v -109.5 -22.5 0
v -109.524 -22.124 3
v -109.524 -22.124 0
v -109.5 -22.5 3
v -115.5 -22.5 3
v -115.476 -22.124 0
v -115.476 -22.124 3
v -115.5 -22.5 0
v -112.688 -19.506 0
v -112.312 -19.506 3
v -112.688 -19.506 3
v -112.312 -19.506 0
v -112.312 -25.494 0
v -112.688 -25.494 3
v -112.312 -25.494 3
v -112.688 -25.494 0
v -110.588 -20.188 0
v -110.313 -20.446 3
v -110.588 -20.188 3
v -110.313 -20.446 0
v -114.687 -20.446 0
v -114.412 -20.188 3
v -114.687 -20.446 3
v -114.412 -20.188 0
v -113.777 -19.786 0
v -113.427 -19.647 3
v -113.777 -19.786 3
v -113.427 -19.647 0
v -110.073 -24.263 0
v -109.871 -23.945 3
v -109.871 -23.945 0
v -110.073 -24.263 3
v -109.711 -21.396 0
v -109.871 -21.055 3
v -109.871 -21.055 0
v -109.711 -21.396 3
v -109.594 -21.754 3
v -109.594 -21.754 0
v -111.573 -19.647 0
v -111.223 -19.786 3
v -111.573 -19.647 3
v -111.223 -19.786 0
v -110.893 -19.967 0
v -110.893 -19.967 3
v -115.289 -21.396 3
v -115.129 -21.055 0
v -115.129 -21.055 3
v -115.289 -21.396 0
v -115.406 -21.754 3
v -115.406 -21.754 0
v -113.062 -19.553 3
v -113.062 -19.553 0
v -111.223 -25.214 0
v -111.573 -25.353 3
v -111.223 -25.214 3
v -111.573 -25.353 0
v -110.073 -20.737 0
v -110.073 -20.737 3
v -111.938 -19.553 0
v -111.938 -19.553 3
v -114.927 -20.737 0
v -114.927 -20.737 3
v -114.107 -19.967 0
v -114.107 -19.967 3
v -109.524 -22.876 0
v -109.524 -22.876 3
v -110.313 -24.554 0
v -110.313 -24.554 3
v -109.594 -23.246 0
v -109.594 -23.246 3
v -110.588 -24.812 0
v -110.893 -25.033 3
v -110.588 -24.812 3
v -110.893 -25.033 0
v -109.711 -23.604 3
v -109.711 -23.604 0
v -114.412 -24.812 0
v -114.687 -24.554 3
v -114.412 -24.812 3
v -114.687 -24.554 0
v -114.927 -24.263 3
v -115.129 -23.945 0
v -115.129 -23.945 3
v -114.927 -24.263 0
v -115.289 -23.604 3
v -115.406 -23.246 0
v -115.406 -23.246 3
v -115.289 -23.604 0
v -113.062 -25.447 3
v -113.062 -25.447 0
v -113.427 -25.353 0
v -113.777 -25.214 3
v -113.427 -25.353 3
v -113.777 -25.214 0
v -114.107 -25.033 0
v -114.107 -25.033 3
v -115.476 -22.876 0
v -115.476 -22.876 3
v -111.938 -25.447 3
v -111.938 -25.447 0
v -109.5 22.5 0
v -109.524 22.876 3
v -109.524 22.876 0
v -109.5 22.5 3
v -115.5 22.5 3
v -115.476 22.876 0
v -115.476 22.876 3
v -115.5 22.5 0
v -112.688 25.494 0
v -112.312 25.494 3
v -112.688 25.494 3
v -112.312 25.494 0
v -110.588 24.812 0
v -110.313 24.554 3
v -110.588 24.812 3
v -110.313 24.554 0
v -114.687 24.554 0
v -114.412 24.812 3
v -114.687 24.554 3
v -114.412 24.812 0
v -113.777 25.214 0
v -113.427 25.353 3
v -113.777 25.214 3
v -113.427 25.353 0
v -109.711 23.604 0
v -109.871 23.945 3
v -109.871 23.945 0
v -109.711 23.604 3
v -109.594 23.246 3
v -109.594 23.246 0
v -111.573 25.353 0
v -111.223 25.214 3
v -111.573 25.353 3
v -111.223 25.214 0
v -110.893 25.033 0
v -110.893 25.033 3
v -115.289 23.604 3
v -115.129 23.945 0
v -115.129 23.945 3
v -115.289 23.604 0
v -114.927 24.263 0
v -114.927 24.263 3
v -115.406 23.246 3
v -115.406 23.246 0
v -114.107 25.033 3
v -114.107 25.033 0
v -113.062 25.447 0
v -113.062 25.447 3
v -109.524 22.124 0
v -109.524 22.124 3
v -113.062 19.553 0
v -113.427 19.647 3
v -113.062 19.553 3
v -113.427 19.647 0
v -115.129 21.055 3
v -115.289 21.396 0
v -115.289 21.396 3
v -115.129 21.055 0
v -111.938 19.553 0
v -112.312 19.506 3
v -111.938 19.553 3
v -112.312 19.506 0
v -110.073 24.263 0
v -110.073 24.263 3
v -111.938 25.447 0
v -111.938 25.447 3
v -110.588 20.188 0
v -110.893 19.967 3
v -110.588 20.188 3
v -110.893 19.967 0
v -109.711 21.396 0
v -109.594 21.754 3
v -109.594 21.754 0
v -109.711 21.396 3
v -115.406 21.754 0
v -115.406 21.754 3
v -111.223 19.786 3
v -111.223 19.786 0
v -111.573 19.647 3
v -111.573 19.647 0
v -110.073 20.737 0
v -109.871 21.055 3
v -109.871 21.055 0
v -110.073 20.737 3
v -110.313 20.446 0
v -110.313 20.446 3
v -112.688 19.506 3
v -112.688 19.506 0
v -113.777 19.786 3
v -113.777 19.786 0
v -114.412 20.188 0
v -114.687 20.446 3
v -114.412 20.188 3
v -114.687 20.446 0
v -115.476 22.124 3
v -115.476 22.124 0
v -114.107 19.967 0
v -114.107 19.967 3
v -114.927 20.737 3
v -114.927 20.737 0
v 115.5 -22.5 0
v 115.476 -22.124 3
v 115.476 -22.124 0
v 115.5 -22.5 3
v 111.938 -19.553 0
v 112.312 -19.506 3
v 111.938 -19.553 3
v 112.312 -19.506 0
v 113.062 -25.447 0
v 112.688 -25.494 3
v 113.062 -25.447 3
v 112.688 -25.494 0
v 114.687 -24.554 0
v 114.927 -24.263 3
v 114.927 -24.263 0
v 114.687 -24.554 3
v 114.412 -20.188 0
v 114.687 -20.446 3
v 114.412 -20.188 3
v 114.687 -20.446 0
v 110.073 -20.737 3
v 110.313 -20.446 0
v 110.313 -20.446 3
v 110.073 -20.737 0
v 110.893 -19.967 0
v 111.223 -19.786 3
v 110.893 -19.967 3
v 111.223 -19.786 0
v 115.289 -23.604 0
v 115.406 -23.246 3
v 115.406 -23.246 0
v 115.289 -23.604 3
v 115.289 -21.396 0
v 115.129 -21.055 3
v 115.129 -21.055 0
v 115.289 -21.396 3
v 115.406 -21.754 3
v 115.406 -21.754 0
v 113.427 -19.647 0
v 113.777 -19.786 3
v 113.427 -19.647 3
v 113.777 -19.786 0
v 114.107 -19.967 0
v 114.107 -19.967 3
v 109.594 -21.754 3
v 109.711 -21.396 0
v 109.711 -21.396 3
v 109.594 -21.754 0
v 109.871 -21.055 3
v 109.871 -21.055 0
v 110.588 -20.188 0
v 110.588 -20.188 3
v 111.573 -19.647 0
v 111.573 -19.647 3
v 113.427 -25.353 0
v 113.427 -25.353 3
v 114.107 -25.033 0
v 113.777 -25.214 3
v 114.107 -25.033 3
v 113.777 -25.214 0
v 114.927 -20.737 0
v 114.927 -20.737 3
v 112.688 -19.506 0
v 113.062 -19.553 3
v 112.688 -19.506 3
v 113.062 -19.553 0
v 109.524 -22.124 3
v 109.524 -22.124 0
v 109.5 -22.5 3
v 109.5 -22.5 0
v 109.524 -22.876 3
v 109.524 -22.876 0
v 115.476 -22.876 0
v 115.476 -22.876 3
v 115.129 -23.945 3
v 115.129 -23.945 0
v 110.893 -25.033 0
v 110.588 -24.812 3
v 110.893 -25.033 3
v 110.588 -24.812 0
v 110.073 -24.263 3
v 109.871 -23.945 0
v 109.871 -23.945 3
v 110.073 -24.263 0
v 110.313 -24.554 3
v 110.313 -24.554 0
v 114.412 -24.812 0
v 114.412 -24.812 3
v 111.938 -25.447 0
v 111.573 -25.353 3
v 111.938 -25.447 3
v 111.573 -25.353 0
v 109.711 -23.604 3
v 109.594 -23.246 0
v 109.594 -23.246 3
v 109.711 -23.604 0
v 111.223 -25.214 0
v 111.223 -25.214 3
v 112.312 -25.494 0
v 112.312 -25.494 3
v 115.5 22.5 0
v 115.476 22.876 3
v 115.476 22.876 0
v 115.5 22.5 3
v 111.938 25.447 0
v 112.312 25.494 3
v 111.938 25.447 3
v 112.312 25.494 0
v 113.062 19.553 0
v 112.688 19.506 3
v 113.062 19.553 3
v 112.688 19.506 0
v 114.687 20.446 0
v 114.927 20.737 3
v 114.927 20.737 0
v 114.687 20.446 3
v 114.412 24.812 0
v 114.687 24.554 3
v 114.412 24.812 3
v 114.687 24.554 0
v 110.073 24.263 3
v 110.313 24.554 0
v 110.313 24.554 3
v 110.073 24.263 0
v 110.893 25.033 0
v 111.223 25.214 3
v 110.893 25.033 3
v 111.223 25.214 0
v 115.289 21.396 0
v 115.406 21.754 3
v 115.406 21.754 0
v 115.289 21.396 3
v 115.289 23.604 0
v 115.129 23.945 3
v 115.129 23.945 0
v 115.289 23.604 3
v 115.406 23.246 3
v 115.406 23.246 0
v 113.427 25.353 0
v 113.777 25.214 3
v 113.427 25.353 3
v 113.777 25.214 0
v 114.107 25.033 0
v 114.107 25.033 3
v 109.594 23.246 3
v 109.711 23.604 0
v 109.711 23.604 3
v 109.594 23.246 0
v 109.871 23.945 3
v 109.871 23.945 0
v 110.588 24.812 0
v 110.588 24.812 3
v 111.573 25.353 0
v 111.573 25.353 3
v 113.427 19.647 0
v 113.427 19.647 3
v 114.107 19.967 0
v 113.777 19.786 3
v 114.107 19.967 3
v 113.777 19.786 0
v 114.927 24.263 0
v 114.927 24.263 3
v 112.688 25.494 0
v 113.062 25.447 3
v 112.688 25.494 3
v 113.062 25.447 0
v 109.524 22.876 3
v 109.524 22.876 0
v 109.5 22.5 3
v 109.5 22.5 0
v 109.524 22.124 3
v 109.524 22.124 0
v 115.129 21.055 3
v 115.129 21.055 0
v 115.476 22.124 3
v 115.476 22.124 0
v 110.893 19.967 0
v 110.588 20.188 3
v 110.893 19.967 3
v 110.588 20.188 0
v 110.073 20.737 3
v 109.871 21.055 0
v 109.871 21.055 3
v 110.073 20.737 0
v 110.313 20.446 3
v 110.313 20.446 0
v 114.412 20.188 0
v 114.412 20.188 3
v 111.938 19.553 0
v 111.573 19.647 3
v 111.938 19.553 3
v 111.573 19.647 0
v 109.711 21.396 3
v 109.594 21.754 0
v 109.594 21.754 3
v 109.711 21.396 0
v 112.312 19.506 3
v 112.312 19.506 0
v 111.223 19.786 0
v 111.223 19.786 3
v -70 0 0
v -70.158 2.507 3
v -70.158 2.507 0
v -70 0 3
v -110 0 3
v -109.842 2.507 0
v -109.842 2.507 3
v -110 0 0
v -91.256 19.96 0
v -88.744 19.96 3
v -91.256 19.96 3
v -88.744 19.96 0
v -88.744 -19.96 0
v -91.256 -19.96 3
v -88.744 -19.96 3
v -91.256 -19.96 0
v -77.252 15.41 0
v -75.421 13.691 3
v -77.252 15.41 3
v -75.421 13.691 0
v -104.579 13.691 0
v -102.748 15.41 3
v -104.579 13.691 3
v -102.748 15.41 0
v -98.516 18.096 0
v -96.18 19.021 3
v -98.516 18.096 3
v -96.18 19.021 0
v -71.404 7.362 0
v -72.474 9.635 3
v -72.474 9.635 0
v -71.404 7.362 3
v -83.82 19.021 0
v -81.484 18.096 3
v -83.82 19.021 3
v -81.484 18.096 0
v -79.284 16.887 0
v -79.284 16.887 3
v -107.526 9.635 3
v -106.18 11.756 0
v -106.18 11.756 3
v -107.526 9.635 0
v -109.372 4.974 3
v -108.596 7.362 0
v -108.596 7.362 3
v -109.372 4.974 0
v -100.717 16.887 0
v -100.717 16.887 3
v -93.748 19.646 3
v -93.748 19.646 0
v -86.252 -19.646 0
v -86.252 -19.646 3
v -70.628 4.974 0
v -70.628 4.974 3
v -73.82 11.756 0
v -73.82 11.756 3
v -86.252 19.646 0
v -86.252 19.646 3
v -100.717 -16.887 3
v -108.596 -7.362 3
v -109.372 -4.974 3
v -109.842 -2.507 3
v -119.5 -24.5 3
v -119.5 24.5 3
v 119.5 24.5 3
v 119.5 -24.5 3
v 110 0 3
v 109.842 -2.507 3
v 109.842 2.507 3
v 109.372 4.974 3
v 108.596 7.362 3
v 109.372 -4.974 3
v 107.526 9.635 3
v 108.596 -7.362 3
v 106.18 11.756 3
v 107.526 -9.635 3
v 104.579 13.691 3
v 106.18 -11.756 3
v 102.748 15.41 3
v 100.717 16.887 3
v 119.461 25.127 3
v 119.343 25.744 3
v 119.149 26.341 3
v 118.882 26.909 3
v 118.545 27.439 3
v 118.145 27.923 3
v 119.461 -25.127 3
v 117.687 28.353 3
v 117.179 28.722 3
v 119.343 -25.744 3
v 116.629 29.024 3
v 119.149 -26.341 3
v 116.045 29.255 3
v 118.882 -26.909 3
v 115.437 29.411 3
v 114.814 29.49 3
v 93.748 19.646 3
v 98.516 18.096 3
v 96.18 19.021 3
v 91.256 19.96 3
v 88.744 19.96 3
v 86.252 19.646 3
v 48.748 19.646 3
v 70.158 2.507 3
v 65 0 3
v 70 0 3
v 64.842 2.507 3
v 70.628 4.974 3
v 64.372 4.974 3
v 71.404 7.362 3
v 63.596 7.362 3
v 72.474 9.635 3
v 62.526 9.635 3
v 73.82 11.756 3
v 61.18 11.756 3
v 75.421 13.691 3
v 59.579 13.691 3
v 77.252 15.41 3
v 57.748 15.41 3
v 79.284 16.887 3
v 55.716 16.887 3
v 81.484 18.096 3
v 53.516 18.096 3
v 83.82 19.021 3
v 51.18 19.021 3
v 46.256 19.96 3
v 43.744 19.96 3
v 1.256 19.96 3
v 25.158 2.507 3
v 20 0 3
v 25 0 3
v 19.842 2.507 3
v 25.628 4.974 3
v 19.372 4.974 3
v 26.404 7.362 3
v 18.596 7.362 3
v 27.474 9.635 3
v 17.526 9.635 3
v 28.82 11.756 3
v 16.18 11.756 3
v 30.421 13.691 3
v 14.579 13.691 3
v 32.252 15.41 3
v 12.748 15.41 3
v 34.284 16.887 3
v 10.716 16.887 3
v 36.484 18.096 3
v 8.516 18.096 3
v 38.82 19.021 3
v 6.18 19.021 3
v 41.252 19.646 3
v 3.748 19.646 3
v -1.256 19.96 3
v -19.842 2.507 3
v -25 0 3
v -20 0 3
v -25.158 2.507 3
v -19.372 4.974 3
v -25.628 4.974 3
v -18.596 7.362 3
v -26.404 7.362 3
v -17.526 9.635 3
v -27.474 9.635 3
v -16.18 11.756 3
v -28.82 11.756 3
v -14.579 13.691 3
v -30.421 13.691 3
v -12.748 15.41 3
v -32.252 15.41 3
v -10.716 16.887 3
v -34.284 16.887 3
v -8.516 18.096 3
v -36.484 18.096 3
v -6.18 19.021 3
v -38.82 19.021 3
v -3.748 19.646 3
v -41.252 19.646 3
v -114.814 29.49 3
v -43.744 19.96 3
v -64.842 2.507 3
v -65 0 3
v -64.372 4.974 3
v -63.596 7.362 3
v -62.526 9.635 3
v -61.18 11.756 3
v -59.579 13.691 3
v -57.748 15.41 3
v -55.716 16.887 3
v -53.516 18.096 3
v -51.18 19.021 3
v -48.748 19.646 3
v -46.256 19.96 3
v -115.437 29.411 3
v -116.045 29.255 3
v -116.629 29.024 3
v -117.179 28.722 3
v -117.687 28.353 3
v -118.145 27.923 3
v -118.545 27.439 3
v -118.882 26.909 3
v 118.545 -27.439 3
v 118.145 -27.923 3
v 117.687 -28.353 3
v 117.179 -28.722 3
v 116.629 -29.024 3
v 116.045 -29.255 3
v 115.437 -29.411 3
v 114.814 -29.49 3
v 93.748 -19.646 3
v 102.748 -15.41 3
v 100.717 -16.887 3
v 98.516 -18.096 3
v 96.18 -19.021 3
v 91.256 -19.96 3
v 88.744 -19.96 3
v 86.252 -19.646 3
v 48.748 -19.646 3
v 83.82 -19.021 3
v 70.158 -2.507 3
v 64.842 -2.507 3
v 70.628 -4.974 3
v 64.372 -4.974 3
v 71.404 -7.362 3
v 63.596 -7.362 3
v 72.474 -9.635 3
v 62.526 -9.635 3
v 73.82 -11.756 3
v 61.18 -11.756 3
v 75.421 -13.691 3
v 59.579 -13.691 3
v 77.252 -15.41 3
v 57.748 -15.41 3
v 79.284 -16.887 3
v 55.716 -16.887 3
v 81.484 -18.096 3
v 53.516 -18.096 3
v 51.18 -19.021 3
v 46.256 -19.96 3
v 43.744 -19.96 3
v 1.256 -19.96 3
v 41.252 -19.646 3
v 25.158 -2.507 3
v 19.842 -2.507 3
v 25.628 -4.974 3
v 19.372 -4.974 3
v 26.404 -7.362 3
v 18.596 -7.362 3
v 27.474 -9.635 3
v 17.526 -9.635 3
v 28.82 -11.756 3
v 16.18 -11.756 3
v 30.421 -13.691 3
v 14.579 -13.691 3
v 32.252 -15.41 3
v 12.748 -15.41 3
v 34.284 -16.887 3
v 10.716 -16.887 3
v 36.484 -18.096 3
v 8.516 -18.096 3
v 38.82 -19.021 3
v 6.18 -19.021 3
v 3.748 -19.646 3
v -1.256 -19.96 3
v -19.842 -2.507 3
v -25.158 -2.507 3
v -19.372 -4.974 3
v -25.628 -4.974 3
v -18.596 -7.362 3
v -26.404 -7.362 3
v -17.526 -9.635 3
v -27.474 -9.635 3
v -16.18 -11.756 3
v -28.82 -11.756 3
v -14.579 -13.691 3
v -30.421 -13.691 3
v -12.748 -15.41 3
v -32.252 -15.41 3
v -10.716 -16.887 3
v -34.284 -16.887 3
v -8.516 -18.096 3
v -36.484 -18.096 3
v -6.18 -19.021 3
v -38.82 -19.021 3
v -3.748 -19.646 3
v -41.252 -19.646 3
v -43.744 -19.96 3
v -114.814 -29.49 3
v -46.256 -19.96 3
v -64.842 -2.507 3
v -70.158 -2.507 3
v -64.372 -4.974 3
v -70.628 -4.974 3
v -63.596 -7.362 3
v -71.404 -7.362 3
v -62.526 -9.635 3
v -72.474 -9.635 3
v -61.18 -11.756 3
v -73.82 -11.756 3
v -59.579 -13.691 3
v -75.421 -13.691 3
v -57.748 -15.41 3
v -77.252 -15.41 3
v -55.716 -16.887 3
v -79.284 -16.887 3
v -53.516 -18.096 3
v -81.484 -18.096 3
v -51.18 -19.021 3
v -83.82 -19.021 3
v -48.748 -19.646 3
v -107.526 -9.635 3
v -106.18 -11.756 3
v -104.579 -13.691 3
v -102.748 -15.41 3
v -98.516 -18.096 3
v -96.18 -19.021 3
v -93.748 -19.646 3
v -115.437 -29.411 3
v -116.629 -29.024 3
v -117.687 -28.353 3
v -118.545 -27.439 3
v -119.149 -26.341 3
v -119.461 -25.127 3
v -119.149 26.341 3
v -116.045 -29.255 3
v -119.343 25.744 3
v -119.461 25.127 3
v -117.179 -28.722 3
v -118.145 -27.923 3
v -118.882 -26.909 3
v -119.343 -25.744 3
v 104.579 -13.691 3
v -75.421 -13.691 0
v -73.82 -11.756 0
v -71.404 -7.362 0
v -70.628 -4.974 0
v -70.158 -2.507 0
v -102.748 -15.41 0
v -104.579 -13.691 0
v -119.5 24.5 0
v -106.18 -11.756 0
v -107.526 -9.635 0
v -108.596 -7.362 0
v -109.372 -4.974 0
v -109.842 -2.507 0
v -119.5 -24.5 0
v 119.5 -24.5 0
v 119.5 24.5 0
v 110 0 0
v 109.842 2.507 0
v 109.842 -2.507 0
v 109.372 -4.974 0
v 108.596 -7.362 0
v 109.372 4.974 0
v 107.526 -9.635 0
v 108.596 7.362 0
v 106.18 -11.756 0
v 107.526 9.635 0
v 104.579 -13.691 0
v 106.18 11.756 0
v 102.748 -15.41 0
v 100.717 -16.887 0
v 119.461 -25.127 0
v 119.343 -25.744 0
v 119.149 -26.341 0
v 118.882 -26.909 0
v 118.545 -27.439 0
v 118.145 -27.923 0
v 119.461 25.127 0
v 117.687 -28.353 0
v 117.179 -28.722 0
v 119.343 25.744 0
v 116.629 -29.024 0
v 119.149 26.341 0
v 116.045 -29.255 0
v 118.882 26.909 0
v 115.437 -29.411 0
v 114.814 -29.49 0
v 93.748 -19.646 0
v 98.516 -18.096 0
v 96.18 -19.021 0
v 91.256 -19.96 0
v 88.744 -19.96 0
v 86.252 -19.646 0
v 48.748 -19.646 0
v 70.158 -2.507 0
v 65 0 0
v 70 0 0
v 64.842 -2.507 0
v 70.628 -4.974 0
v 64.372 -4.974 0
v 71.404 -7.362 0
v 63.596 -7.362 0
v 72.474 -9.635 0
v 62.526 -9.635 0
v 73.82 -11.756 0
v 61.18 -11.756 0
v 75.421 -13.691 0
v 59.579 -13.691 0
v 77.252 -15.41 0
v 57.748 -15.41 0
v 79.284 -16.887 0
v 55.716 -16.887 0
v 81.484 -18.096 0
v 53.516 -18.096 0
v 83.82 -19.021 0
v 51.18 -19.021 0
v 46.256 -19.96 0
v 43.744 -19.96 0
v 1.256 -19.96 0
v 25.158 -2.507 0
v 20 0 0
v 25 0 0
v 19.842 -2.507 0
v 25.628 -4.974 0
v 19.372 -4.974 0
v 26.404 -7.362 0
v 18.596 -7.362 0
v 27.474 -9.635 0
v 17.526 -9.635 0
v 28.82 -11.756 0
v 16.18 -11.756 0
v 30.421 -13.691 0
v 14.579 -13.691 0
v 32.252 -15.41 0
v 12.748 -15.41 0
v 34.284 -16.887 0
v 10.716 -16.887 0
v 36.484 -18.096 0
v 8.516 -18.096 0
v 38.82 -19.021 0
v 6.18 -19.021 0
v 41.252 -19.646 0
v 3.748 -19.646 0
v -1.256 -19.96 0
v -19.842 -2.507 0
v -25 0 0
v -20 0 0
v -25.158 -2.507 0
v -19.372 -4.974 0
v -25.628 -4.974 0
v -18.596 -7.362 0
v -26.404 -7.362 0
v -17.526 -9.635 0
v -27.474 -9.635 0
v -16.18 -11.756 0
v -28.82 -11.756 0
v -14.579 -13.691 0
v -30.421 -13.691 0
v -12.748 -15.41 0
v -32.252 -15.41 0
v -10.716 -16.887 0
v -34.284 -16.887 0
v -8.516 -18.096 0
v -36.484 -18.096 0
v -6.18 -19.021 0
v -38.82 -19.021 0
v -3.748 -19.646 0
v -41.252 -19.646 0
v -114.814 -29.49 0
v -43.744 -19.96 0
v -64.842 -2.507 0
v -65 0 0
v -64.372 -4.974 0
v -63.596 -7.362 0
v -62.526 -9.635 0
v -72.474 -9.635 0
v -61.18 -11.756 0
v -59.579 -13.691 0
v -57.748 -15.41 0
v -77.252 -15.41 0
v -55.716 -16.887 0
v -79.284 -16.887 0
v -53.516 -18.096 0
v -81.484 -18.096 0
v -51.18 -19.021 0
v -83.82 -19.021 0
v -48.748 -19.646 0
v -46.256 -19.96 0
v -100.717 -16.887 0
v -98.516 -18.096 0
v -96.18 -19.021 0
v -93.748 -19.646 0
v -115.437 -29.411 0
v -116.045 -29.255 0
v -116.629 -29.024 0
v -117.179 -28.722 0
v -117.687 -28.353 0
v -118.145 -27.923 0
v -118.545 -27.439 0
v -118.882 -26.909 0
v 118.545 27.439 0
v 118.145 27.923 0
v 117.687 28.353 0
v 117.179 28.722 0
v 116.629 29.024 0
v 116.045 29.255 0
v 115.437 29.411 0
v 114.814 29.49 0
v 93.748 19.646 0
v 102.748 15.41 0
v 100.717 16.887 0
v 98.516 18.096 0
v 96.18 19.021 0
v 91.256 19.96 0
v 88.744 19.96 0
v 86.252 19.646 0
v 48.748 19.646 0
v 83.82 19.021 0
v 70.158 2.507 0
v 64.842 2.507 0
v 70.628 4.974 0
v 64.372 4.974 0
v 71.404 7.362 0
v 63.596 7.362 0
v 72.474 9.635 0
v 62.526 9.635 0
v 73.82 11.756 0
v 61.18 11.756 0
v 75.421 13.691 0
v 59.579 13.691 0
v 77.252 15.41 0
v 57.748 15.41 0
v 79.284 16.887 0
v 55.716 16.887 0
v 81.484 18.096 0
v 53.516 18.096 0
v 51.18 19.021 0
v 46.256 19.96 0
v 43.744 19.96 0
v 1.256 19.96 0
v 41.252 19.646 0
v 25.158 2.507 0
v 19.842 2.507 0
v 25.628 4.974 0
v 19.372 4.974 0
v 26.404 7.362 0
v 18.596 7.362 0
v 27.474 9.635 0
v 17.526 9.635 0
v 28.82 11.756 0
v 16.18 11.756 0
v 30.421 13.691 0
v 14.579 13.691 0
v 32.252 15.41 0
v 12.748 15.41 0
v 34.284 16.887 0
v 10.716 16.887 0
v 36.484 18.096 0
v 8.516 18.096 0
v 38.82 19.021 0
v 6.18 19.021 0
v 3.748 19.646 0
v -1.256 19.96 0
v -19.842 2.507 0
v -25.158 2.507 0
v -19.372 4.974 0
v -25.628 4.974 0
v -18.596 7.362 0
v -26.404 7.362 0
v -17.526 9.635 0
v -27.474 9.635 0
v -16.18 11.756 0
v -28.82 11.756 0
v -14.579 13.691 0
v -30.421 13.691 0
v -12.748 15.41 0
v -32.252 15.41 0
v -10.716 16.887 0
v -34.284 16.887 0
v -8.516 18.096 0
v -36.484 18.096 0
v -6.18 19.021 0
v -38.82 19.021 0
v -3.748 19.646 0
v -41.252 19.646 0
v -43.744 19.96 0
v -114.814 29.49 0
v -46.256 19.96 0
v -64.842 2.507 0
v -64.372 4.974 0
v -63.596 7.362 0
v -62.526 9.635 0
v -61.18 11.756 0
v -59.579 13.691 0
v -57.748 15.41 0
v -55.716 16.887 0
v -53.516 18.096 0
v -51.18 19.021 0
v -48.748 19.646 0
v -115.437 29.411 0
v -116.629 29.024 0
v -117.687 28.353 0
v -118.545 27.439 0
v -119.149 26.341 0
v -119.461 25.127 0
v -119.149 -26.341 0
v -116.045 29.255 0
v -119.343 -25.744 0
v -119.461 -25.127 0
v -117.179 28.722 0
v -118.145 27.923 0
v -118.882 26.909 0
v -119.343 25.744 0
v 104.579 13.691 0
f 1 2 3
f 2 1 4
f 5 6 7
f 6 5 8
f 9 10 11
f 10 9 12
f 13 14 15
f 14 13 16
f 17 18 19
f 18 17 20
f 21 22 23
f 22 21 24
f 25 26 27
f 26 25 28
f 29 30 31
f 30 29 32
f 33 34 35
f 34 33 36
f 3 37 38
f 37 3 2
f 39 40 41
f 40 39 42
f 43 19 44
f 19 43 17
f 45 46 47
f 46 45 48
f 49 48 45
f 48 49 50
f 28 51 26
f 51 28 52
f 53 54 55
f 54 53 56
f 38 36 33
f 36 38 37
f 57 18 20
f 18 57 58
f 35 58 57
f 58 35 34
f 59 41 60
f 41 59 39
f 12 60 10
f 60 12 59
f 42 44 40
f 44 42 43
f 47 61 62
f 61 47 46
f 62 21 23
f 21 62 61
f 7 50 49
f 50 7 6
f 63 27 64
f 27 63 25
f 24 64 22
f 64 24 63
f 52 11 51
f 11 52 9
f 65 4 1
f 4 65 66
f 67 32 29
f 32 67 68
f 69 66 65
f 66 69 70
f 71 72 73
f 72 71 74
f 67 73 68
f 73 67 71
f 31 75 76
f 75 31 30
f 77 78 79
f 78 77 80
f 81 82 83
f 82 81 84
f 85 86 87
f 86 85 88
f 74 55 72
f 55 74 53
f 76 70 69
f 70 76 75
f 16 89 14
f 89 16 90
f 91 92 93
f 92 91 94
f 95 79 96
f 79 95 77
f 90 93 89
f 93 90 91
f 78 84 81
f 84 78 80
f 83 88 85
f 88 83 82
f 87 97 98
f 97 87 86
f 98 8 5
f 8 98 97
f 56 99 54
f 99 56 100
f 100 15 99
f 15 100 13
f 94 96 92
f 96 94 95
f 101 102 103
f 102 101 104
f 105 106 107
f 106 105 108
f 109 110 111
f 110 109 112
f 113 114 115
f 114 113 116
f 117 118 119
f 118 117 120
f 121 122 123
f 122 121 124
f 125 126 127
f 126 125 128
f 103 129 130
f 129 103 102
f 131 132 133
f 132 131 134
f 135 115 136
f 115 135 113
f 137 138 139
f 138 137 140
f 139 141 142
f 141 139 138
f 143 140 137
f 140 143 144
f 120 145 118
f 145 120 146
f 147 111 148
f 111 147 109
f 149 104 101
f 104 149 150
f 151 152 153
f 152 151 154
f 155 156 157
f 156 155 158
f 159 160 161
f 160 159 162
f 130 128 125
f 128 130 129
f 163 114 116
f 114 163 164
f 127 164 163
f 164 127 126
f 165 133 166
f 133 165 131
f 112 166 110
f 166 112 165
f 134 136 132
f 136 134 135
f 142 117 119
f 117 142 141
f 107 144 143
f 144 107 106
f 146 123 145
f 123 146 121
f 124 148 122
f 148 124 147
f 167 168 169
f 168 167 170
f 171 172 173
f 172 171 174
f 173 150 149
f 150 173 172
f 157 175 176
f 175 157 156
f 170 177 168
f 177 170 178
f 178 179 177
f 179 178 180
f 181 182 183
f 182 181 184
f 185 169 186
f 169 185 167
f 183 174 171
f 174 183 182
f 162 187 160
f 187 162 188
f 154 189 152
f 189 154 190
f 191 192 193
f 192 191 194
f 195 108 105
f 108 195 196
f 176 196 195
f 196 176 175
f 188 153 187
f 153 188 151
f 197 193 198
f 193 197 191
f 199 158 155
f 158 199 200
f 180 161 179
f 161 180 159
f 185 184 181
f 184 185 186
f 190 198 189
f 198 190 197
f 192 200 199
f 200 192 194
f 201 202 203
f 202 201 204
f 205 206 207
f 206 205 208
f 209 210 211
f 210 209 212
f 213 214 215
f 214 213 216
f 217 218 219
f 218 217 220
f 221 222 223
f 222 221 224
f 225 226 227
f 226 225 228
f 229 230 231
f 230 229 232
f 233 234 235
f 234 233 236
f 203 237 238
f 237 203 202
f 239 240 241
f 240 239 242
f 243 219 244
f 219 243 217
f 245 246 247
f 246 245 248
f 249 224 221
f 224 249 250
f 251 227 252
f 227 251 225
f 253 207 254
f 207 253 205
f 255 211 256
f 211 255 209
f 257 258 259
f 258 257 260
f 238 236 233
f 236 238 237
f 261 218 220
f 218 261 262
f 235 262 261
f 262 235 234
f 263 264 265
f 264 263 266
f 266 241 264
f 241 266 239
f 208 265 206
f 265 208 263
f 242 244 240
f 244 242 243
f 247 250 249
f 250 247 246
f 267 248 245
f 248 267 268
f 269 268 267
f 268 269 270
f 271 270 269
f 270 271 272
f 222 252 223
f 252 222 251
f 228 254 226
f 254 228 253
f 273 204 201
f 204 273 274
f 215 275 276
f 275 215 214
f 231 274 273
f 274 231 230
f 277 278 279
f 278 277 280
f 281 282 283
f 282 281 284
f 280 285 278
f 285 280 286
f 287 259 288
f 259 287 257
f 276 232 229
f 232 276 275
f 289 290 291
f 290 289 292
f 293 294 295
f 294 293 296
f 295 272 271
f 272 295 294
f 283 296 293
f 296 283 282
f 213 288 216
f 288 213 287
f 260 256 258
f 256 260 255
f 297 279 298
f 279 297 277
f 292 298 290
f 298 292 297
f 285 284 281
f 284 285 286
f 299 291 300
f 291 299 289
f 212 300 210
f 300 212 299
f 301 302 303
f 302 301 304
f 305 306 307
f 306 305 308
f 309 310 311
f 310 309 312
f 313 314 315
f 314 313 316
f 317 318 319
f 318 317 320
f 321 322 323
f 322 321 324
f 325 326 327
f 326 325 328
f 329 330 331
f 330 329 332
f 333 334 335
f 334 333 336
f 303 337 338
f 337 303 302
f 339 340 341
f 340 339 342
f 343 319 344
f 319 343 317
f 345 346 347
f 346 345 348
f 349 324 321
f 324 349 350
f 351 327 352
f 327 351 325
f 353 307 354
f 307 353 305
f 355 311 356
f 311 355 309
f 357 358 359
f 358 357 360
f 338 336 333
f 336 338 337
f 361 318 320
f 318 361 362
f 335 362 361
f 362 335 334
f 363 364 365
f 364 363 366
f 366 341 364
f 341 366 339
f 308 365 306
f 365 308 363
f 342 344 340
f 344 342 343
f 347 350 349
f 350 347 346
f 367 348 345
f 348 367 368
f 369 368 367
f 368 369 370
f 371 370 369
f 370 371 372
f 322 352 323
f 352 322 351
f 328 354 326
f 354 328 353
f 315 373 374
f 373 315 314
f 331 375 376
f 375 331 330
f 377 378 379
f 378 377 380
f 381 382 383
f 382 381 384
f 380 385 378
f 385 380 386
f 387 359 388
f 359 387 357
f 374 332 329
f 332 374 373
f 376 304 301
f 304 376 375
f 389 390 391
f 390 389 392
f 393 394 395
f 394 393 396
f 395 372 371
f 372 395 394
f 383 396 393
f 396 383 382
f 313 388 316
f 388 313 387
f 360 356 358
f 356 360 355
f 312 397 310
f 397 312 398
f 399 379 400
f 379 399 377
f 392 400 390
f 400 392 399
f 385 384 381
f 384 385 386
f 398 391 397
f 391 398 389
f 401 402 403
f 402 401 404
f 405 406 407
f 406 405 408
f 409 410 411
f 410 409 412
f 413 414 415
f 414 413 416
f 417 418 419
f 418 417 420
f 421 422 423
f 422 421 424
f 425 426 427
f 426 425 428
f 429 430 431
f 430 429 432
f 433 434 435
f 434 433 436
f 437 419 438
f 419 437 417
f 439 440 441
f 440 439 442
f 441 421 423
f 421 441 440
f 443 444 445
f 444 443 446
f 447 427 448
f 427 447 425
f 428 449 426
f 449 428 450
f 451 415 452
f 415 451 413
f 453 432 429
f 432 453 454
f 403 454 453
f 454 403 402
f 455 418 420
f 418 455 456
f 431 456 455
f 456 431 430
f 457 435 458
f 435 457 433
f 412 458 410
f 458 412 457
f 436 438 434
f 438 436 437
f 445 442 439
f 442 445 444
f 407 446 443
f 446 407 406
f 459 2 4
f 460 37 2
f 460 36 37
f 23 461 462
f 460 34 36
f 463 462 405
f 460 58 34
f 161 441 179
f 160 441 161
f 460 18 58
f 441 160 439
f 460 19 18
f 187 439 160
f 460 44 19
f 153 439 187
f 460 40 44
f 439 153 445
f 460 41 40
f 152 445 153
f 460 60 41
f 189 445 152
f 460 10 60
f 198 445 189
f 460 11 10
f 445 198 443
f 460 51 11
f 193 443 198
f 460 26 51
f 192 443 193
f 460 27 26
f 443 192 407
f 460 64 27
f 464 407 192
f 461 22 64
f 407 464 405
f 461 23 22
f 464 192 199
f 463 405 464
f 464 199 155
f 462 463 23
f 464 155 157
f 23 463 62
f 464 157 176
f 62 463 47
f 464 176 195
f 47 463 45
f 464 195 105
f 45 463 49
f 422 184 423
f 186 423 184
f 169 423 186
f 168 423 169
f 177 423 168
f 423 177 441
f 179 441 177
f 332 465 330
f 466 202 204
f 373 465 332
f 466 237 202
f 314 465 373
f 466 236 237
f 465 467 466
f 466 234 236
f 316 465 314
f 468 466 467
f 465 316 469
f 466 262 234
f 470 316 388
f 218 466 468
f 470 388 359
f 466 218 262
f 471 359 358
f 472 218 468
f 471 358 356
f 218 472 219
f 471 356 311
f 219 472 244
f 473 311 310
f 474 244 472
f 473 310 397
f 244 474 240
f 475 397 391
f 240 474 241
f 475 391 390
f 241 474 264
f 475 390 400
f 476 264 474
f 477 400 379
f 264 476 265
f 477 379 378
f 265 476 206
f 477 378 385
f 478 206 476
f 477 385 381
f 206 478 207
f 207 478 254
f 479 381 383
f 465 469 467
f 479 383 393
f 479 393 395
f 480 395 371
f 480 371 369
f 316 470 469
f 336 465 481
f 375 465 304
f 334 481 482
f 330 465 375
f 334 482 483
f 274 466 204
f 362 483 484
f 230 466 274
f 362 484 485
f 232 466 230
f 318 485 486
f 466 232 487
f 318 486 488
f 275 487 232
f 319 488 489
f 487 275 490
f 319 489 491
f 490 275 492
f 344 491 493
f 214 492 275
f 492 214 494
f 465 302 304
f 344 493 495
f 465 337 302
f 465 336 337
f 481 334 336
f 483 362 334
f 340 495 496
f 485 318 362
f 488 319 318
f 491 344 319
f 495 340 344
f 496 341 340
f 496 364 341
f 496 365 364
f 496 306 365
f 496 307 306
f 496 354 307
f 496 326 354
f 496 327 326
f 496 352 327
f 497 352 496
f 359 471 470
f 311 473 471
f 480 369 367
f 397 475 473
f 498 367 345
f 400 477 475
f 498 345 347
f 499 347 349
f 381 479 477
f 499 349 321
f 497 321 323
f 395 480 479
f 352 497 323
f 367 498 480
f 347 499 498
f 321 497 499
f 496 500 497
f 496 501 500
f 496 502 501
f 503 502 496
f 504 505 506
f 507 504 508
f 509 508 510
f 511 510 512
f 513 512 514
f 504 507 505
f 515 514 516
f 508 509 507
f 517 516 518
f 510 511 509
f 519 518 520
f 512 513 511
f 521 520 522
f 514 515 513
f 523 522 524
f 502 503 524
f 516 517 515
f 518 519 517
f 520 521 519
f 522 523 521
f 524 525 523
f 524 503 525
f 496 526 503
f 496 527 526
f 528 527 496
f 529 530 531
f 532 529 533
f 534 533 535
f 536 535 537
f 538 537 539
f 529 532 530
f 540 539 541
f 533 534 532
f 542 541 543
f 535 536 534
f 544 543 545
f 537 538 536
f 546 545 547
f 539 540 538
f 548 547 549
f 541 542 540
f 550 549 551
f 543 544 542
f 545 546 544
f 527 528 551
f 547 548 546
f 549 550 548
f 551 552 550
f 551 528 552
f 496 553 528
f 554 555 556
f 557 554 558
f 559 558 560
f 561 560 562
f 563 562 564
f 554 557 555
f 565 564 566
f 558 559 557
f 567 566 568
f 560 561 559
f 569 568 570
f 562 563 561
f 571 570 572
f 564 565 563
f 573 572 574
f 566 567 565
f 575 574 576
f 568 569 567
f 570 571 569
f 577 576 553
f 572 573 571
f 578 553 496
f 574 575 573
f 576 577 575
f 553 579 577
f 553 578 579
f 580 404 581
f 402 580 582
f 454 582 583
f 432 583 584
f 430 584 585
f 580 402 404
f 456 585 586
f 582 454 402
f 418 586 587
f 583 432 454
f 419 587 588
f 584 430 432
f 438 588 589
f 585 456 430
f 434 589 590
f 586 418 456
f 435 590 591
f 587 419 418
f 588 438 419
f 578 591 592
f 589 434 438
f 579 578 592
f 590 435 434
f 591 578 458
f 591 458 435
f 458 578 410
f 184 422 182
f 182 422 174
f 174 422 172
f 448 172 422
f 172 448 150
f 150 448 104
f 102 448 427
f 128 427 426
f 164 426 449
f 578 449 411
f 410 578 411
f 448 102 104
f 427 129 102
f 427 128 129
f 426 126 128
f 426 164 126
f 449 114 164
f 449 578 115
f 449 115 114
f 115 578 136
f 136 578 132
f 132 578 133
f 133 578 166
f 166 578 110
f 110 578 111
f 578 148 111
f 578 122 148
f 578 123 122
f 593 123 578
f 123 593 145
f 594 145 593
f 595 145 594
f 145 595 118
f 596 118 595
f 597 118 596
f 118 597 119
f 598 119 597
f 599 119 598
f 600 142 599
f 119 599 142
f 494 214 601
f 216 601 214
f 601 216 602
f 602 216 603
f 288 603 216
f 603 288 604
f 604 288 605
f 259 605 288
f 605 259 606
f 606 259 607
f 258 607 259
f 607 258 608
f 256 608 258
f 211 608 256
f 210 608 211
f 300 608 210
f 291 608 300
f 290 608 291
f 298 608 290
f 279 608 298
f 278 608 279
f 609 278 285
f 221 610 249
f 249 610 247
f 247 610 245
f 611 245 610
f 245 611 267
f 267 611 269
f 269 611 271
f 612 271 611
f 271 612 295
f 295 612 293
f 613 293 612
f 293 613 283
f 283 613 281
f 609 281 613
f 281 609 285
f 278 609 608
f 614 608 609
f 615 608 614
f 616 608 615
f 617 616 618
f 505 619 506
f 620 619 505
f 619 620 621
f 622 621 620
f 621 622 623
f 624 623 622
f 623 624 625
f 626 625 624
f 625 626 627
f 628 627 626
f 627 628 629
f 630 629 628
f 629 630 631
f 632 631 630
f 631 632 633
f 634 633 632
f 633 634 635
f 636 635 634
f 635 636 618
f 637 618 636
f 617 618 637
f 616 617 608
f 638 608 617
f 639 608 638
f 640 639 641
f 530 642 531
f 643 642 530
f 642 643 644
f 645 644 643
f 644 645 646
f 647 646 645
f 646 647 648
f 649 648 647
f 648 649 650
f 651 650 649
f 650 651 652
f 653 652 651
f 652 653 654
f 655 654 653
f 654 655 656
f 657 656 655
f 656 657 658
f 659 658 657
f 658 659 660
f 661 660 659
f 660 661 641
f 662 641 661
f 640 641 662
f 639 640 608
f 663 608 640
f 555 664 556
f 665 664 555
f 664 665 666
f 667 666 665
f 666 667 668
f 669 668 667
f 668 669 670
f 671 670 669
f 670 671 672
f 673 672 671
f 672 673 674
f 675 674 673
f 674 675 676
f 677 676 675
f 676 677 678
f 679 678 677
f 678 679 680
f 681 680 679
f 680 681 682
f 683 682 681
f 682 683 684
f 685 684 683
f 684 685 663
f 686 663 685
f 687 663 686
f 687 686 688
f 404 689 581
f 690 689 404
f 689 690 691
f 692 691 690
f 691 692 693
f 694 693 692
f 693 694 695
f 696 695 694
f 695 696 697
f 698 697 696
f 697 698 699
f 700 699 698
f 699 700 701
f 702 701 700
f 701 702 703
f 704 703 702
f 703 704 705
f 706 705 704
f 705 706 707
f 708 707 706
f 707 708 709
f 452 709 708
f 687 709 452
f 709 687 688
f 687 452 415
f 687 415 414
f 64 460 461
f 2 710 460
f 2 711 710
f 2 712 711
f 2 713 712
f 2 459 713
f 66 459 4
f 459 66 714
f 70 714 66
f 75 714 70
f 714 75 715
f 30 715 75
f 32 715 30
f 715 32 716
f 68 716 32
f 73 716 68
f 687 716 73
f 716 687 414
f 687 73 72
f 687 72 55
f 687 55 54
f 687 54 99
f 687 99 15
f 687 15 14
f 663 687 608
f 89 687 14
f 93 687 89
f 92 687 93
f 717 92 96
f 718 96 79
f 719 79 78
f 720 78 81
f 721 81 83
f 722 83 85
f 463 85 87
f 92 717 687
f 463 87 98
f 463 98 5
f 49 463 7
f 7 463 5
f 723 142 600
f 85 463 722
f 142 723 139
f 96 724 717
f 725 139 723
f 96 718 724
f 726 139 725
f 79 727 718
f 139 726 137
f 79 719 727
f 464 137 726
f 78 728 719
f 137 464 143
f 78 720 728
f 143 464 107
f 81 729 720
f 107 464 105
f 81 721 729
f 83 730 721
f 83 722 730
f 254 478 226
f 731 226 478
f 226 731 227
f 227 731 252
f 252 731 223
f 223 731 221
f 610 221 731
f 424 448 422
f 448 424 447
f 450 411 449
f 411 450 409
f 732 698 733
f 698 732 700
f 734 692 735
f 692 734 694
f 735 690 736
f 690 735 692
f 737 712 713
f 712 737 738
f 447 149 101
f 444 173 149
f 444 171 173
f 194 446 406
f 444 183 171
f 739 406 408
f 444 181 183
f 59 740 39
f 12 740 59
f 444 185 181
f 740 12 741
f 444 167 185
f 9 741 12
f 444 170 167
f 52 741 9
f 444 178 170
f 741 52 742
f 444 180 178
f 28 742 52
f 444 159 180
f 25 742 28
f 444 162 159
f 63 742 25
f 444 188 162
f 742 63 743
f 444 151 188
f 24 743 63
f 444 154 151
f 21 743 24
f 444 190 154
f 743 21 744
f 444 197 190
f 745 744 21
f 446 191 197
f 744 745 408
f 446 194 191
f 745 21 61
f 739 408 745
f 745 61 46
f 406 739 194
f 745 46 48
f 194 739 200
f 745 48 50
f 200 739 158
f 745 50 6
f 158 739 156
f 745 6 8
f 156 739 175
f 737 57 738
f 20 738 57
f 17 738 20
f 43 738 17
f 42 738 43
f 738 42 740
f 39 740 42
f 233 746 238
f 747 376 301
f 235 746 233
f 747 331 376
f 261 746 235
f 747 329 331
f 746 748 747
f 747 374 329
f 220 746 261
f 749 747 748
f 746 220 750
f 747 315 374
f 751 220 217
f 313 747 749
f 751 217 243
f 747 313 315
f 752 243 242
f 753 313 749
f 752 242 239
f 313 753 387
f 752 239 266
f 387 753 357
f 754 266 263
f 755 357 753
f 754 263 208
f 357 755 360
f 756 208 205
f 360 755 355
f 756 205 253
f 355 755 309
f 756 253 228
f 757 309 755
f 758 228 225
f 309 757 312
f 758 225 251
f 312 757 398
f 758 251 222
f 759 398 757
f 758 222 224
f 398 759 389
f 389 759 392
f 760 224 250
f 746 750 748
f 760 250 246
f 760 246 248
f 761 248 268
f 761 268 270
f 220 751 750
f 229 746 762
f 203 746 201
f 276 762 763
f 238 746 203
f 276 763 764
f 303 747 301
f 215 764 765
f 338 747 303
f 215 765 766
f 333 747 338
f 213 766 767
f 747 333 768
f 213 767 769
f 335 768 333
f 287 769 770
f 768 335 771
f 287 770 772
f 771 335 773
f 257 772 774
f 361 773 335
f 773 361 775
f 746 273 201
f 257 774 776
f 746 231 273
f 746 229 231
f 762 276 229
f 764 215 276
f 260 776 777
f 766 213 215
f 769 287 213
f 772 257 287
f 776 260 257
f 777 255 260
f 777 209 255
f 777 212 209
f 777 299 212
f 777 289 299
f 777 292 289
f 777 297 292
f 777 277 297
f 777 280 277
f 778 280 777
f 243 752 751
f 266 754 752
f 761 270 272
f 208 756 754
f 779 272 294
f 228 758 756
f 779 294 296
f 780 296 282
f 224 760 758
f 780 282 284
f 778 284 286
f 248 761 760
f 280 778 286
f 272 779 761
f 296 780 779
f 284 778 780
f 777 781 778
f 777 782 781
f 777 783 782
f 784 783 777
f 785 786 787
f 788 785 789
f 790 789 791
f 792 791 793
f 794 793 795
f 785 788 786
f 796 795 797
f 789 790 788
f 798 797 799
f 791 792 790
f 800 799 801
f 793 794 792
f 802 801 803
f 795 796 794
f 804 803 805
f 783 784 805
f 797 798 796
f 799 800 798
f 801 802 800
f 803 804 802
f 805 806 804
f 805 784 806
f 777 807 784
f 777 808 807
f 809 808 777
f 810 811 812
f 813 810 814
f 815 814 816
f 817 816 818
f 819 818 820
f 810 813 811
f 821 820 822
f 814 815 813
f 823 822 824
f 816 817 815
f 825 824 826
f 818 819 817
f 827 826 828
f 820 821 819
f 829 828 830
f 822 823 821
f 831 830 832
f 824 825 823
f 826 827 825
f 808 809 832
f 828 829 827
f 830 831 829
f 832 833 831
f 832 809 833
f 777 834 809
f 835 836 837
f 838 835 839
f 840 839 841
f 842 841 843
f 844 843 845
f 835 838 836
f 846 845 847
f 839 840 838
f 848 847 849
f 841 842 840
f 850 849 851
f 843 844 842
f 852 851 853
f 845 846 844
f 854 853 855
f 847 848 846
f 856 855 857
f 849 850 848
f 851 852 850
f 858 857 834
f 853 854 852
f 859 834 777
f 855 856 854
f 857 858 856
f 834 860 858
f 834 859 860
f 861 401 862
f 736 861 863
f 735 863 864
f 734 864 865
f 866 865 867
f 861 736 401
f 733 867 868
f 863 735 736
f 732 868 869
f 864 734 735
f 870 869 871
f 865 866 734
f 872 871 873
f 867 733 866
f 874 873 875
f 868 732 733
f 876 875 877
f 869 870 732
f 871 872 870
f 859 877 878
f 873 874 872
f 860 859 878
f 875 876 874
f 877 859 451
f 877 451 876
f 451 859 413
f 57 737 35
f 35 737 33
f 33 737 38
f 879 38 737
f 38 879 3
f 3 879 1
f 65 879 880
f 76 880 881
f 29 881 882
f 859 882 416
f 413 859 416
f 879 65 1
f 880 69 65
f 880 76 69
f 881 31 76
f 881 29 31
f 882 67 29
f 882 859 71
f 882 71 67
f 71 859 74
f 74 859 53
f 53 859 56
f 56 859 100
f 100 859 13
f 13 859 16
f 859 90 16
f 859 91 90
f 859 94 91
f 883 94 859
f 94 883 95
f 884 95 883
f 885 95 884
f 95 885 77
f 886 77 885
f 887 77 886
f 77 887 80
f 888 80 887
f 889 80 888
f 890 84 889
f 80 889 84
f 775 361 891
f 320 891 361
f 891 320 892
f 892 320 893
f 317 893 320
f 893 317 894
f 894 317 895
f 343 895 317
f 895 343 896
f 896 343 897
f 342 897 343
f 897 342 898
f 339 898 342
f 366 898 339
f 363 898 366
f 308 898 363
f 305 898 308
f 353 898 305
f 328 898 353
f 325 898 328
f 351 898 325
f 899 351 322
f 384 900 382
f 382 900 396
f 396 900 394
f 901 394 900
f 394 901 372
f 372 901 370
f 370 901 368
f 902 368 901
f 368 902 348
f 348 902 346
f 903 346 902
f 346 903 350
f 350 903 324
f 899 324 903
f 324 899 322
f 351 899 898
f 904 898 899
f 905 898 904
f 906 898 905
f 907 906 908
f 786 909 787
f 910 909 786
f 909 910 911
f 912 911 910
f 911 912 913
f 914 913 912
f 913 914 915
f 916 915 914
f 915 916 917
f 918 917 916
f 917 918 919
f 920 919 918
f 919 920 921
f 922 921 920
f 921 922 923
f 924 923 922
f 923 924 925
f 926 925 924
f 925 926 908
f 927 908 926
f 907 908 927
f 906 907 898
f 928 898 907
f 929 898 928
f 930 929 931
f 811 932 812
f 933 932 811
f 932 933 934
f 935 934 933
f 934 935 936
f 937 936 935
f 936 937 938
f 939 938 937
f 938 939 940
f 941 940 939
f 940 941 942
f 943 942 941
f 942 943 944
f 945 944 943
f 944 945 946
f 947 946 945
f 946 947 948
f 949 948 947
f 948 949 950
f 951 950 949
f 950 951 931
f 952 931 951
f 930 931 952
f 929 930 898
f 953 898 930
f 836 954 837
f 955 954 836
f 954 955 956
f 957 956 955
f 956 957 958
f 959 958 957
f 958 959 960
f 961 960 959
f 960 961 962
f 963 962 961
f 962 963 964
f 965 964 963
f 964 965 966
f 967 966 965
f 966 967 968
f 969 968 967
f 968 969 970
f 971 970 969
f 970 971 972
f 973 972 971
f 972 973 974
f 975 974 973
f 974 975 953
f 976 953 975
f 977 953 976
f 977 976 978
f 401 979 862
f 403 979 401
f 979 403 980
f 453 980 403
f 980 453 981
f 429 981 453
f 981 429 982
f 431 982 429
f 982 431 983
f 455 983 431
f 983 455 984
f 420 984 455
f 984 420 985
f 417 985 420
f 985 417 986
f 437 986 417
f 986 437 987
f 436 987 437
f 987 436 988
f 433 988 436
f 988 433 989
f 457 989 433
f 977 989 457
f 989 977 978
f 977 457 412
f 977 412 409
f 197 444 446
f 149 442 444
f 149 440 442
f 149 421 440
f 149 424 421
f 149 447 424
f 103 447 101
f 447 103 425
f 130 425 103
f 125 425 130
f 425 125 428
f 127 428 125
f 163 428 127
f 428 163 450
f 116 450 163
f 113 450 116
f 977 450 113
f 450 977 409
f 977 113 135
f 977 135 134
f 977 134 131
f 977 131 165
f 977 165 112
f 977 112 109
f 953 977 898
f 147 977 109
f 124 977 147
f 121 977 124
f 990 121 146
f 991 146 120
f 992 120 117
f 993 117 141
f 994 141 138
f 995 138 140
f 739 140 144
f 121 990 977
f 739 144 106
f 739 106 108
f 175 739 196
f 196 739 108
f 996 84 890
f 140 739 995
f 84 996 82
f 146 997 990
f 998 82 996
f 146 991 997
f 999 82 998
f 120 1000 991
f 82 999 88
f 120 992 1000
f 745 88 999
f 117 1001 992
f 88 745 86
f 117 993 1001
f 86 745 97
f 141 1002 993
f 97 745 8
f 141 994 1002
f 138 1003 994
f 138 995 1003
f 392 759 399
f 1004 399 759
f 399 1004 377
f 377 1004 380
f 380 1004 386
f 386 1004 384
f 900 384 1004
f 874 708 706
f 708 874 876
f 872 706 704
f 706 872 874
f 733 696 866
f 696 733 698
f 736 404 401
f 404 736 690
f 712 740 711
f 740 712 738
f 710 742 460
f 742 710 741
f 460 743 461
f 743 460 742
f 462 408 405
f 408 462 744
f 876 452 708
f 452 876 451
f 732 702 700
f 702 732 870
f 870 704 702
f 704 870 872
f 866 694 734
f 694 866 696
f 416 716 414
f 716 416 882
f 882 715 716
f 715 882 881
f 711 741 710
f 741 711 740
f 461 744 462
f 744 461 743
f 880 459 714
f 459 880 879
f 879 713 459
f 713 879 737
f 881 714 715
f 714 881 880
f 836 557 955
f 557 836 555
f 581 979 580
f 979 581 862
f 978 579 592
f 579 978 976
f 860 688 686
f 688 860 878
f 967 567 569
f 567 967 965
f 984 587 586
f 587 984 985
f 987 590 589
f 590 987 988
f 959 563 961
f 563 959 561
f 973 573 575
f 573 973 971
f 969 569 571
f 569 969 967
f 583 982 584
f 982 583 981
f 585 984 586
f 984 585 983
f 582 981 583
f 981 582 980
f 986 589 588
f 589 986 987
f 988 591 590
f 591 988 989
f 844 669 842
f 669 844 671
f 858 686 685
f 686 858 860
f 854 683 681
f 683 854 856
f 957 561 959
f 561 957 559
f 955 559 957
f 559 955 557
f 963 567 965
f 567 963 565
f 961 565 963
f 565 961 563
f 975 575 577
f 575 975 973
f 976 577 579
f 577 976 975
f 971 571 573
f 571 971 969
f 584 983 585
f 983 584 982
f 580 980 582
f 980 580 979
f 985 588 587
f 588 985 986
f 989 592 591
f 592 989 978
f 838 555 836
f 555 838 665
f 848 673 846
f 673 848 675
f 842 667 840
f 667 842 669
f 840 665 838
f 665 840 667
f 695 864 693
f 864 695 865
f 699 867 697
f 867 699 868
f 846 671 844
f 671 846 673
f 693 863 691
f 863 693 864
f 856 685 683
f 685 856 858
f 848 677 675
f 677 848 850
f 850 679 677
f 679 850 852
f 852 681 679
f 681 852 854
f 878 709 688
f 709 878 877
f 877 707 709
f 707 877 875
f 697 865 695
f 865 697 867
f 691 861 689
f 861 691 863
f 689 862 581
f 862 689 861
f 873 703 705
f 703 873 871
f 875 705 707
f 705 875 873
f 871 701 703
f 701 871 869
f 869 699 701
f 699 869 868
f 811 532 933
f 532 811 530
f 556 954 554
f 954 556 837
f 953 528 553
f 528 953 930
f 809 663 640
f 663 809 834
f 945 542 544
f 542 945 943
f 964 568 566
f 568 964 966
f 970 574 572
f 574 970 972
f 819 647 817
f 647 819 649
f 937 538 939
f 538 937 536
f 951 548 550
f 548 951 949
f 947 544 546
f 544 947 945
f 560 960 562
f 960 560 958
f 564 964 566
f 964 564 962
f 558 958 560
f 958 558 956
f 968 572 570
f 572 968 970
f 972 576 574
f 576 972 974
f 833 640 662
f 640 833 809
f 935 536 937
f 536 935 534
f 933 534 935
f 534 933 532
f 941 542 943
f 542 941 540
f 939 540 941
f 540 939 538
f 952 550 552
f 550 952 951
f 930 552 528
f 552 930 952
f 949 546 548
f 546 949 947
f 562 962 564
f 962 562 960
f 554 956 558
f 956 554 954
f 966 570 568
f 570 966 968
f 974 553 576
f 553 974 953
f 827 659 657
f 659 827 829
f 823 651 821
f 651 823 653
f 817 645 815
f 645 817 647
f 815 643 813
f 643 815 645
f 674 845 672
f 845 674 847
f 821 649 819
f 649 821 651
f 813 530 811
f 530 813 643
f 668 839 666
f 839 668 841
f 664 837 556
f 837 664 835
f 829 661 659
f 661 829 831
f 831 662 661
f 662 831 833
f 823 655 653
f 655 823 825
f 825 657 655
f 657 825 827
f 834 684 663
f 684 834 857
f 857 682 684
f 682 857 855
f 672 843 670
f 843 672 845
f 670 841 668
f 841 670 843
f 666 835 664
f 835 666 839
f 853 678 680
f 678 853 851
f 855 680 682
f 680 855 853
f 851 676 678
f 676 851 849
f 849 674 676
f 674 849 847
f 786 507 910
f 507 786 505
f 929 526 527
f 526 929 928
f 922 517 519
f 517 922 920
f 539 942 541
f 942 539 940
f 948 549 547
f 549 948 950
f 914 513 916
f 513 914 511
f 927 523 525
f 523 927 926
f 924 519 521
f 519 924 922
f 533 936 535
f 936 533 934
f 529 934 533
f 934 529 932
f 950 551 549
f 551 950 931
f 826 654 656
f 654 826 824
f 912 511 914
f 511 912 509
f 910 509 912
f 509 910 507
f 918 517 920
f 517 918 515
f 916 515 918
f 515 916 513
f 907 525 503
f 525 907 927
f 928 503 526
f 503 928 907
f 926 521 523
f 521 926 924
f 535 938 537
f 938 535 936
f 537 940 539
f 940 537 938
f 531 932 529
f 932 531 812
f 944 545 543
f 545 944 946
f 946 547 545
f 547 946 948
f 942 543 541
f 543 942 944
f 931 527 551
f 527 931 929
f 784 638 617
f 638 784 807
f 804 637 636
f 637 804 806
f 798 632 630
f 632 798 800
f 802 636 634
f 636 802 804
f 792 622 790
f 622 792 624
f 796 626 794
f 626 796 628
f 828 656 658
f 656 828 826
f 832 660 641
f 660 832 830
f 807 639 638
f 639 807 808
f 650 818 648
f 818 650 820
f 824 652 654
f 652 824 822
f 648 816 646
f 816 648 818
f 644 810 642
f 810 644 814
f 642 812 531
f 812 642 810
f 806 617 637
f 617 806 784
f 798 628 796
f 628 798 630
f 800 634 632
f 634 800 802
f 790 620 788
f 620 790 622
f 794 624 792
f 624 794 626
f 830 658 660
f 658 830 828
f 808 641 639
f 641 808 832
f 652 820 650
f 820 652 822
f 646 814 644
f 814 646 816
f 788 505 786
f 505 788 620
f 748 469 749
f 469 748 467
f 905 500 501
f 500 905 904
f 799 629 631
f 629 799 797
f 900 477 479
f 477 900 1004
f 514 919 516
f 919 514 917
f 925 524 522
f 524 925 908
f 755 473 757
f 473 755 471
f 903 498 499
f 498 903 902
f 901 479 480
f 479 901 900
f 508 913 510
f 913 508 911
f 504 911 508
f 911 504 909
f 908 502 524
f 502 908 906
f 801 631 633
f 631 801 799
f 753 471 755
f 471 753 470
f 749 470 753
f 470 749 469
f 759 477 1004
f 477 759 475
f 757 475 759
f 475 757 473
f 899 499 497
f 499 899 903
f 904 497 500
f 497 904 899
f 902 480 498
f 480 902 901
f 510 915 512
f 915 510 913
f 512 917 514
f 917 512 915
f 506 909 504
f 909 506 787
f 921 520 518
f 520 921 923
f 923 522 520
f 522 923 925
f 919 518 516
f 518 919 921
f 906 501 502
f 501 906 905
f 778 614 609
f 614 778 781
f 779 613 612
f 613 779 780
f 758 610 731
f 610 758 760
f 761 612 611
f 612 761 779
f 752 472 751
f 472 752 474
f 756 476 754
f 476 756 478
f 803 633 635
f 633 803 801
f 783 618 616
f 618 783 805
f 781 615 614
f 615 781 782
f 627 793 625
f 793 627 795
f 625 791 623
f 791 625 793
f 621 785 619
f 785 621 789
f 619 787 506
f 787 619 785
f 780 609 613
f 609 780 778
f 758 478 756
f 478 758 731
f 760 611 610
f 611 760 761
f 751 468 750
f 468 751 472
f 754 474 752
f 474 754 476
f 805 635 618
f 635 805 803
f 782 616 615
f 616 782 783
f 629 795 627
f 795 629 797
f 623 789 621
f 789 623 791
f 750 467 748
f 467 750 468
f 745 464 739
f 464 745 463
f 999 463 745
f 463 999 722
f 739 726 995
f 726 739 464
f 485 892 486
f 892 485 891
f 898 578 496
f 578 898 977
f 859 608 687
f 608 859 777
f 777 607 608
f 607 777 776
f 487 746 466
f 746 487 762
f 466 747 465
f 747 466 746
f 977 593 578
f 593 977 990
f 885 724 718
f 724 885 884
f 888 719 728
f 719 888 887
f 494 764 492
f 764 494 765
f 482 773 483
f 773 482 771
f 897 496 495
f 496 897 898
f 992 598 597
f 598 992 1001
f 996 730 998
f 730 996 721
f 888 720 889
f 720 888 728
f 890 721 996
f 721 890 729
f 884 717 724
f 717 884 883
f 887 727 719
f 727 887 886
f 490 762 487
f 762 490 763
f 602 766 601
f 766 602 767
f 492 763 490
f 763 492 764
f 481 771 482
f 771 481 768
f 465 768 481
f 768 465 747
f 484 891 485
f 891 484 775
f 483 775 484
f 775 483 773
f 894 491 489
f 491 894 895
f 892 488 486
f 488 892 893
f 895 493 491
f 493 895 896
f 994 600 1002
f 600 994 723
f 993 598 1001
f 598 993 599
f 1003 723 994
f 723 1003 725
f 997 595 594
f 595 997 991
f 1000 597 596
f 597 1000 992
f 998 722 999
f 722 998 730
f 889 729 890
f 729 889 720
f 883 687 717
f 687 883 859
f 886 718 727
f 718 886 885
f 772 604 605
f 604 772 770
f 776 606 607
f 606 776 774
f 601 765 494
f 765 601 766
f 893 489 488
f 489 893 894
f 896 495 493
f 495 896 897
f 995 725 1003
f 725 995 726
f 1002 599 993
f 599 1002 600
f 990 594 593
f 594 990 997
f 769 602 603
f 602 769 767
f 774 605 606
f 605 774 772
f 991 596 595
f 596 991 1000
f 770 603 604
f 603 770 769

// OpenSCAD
$fn = 50;


difference() {
	union() {
		hull() {
			translate(v = [-114.5000000000, 24.5000000000, 0]) {
				cylinder(h = 3, r = 5);
			}
			translate(v = [114.5000000000, 24.5000000000, 0]) {
				cylinder(h = 3, r = 5);
			}
			translate(v = [-114.5000000000, -24.5000000000, 0]) {
				cylinder(h = 3, r = 5);
			}
			translate(v = [114.5000000000, -24.5000000000, 0]) {
				cylinder(h = 3, r = 5);
			}
		}
	}
	union() {
		#translate(v = [-112.5000000000, -22.5000000000, -100.0000000000]) {
			cylinder(h = 200, r = 3.0000000000);
		}
		#translate(v = [-112.5000000000, 22.5000000000, -100.0000000000]) {
			cylinder(h = 200, r = 3.0000000000);
		}
		#translate(v = [112.5000000000, -22.5000000000, -100.0000000000]) {
			cylinder(h = 200, r = 3.0000000000);
		}
		#translate(v = [112.5000000000, 22.5000000000, -100.0000000000]) {
			cylinder(h = 200, r = 3.0000000000);
		}
		#translate(v = [-90.0000000000, 0, 0]) {
			cylinder(h = 3, r = 20.0000000000);
		}
		#translate(v = [-45.0000000000, 0, 0]) {
			cylinder(h = 3, r = 20.0000000000);
		}
		#cylinder(h = 3, r = 20.0000000000);
		#translate(v = [45.0000000000, 0, 0]) {
			cylinder(h = 3, r = 20.0000000000);
		}
		#translate(v = [90.0000000000, 0, 0]) {
			cylinder(h = 3, r = 20.0000000000);
		}
	}
}
